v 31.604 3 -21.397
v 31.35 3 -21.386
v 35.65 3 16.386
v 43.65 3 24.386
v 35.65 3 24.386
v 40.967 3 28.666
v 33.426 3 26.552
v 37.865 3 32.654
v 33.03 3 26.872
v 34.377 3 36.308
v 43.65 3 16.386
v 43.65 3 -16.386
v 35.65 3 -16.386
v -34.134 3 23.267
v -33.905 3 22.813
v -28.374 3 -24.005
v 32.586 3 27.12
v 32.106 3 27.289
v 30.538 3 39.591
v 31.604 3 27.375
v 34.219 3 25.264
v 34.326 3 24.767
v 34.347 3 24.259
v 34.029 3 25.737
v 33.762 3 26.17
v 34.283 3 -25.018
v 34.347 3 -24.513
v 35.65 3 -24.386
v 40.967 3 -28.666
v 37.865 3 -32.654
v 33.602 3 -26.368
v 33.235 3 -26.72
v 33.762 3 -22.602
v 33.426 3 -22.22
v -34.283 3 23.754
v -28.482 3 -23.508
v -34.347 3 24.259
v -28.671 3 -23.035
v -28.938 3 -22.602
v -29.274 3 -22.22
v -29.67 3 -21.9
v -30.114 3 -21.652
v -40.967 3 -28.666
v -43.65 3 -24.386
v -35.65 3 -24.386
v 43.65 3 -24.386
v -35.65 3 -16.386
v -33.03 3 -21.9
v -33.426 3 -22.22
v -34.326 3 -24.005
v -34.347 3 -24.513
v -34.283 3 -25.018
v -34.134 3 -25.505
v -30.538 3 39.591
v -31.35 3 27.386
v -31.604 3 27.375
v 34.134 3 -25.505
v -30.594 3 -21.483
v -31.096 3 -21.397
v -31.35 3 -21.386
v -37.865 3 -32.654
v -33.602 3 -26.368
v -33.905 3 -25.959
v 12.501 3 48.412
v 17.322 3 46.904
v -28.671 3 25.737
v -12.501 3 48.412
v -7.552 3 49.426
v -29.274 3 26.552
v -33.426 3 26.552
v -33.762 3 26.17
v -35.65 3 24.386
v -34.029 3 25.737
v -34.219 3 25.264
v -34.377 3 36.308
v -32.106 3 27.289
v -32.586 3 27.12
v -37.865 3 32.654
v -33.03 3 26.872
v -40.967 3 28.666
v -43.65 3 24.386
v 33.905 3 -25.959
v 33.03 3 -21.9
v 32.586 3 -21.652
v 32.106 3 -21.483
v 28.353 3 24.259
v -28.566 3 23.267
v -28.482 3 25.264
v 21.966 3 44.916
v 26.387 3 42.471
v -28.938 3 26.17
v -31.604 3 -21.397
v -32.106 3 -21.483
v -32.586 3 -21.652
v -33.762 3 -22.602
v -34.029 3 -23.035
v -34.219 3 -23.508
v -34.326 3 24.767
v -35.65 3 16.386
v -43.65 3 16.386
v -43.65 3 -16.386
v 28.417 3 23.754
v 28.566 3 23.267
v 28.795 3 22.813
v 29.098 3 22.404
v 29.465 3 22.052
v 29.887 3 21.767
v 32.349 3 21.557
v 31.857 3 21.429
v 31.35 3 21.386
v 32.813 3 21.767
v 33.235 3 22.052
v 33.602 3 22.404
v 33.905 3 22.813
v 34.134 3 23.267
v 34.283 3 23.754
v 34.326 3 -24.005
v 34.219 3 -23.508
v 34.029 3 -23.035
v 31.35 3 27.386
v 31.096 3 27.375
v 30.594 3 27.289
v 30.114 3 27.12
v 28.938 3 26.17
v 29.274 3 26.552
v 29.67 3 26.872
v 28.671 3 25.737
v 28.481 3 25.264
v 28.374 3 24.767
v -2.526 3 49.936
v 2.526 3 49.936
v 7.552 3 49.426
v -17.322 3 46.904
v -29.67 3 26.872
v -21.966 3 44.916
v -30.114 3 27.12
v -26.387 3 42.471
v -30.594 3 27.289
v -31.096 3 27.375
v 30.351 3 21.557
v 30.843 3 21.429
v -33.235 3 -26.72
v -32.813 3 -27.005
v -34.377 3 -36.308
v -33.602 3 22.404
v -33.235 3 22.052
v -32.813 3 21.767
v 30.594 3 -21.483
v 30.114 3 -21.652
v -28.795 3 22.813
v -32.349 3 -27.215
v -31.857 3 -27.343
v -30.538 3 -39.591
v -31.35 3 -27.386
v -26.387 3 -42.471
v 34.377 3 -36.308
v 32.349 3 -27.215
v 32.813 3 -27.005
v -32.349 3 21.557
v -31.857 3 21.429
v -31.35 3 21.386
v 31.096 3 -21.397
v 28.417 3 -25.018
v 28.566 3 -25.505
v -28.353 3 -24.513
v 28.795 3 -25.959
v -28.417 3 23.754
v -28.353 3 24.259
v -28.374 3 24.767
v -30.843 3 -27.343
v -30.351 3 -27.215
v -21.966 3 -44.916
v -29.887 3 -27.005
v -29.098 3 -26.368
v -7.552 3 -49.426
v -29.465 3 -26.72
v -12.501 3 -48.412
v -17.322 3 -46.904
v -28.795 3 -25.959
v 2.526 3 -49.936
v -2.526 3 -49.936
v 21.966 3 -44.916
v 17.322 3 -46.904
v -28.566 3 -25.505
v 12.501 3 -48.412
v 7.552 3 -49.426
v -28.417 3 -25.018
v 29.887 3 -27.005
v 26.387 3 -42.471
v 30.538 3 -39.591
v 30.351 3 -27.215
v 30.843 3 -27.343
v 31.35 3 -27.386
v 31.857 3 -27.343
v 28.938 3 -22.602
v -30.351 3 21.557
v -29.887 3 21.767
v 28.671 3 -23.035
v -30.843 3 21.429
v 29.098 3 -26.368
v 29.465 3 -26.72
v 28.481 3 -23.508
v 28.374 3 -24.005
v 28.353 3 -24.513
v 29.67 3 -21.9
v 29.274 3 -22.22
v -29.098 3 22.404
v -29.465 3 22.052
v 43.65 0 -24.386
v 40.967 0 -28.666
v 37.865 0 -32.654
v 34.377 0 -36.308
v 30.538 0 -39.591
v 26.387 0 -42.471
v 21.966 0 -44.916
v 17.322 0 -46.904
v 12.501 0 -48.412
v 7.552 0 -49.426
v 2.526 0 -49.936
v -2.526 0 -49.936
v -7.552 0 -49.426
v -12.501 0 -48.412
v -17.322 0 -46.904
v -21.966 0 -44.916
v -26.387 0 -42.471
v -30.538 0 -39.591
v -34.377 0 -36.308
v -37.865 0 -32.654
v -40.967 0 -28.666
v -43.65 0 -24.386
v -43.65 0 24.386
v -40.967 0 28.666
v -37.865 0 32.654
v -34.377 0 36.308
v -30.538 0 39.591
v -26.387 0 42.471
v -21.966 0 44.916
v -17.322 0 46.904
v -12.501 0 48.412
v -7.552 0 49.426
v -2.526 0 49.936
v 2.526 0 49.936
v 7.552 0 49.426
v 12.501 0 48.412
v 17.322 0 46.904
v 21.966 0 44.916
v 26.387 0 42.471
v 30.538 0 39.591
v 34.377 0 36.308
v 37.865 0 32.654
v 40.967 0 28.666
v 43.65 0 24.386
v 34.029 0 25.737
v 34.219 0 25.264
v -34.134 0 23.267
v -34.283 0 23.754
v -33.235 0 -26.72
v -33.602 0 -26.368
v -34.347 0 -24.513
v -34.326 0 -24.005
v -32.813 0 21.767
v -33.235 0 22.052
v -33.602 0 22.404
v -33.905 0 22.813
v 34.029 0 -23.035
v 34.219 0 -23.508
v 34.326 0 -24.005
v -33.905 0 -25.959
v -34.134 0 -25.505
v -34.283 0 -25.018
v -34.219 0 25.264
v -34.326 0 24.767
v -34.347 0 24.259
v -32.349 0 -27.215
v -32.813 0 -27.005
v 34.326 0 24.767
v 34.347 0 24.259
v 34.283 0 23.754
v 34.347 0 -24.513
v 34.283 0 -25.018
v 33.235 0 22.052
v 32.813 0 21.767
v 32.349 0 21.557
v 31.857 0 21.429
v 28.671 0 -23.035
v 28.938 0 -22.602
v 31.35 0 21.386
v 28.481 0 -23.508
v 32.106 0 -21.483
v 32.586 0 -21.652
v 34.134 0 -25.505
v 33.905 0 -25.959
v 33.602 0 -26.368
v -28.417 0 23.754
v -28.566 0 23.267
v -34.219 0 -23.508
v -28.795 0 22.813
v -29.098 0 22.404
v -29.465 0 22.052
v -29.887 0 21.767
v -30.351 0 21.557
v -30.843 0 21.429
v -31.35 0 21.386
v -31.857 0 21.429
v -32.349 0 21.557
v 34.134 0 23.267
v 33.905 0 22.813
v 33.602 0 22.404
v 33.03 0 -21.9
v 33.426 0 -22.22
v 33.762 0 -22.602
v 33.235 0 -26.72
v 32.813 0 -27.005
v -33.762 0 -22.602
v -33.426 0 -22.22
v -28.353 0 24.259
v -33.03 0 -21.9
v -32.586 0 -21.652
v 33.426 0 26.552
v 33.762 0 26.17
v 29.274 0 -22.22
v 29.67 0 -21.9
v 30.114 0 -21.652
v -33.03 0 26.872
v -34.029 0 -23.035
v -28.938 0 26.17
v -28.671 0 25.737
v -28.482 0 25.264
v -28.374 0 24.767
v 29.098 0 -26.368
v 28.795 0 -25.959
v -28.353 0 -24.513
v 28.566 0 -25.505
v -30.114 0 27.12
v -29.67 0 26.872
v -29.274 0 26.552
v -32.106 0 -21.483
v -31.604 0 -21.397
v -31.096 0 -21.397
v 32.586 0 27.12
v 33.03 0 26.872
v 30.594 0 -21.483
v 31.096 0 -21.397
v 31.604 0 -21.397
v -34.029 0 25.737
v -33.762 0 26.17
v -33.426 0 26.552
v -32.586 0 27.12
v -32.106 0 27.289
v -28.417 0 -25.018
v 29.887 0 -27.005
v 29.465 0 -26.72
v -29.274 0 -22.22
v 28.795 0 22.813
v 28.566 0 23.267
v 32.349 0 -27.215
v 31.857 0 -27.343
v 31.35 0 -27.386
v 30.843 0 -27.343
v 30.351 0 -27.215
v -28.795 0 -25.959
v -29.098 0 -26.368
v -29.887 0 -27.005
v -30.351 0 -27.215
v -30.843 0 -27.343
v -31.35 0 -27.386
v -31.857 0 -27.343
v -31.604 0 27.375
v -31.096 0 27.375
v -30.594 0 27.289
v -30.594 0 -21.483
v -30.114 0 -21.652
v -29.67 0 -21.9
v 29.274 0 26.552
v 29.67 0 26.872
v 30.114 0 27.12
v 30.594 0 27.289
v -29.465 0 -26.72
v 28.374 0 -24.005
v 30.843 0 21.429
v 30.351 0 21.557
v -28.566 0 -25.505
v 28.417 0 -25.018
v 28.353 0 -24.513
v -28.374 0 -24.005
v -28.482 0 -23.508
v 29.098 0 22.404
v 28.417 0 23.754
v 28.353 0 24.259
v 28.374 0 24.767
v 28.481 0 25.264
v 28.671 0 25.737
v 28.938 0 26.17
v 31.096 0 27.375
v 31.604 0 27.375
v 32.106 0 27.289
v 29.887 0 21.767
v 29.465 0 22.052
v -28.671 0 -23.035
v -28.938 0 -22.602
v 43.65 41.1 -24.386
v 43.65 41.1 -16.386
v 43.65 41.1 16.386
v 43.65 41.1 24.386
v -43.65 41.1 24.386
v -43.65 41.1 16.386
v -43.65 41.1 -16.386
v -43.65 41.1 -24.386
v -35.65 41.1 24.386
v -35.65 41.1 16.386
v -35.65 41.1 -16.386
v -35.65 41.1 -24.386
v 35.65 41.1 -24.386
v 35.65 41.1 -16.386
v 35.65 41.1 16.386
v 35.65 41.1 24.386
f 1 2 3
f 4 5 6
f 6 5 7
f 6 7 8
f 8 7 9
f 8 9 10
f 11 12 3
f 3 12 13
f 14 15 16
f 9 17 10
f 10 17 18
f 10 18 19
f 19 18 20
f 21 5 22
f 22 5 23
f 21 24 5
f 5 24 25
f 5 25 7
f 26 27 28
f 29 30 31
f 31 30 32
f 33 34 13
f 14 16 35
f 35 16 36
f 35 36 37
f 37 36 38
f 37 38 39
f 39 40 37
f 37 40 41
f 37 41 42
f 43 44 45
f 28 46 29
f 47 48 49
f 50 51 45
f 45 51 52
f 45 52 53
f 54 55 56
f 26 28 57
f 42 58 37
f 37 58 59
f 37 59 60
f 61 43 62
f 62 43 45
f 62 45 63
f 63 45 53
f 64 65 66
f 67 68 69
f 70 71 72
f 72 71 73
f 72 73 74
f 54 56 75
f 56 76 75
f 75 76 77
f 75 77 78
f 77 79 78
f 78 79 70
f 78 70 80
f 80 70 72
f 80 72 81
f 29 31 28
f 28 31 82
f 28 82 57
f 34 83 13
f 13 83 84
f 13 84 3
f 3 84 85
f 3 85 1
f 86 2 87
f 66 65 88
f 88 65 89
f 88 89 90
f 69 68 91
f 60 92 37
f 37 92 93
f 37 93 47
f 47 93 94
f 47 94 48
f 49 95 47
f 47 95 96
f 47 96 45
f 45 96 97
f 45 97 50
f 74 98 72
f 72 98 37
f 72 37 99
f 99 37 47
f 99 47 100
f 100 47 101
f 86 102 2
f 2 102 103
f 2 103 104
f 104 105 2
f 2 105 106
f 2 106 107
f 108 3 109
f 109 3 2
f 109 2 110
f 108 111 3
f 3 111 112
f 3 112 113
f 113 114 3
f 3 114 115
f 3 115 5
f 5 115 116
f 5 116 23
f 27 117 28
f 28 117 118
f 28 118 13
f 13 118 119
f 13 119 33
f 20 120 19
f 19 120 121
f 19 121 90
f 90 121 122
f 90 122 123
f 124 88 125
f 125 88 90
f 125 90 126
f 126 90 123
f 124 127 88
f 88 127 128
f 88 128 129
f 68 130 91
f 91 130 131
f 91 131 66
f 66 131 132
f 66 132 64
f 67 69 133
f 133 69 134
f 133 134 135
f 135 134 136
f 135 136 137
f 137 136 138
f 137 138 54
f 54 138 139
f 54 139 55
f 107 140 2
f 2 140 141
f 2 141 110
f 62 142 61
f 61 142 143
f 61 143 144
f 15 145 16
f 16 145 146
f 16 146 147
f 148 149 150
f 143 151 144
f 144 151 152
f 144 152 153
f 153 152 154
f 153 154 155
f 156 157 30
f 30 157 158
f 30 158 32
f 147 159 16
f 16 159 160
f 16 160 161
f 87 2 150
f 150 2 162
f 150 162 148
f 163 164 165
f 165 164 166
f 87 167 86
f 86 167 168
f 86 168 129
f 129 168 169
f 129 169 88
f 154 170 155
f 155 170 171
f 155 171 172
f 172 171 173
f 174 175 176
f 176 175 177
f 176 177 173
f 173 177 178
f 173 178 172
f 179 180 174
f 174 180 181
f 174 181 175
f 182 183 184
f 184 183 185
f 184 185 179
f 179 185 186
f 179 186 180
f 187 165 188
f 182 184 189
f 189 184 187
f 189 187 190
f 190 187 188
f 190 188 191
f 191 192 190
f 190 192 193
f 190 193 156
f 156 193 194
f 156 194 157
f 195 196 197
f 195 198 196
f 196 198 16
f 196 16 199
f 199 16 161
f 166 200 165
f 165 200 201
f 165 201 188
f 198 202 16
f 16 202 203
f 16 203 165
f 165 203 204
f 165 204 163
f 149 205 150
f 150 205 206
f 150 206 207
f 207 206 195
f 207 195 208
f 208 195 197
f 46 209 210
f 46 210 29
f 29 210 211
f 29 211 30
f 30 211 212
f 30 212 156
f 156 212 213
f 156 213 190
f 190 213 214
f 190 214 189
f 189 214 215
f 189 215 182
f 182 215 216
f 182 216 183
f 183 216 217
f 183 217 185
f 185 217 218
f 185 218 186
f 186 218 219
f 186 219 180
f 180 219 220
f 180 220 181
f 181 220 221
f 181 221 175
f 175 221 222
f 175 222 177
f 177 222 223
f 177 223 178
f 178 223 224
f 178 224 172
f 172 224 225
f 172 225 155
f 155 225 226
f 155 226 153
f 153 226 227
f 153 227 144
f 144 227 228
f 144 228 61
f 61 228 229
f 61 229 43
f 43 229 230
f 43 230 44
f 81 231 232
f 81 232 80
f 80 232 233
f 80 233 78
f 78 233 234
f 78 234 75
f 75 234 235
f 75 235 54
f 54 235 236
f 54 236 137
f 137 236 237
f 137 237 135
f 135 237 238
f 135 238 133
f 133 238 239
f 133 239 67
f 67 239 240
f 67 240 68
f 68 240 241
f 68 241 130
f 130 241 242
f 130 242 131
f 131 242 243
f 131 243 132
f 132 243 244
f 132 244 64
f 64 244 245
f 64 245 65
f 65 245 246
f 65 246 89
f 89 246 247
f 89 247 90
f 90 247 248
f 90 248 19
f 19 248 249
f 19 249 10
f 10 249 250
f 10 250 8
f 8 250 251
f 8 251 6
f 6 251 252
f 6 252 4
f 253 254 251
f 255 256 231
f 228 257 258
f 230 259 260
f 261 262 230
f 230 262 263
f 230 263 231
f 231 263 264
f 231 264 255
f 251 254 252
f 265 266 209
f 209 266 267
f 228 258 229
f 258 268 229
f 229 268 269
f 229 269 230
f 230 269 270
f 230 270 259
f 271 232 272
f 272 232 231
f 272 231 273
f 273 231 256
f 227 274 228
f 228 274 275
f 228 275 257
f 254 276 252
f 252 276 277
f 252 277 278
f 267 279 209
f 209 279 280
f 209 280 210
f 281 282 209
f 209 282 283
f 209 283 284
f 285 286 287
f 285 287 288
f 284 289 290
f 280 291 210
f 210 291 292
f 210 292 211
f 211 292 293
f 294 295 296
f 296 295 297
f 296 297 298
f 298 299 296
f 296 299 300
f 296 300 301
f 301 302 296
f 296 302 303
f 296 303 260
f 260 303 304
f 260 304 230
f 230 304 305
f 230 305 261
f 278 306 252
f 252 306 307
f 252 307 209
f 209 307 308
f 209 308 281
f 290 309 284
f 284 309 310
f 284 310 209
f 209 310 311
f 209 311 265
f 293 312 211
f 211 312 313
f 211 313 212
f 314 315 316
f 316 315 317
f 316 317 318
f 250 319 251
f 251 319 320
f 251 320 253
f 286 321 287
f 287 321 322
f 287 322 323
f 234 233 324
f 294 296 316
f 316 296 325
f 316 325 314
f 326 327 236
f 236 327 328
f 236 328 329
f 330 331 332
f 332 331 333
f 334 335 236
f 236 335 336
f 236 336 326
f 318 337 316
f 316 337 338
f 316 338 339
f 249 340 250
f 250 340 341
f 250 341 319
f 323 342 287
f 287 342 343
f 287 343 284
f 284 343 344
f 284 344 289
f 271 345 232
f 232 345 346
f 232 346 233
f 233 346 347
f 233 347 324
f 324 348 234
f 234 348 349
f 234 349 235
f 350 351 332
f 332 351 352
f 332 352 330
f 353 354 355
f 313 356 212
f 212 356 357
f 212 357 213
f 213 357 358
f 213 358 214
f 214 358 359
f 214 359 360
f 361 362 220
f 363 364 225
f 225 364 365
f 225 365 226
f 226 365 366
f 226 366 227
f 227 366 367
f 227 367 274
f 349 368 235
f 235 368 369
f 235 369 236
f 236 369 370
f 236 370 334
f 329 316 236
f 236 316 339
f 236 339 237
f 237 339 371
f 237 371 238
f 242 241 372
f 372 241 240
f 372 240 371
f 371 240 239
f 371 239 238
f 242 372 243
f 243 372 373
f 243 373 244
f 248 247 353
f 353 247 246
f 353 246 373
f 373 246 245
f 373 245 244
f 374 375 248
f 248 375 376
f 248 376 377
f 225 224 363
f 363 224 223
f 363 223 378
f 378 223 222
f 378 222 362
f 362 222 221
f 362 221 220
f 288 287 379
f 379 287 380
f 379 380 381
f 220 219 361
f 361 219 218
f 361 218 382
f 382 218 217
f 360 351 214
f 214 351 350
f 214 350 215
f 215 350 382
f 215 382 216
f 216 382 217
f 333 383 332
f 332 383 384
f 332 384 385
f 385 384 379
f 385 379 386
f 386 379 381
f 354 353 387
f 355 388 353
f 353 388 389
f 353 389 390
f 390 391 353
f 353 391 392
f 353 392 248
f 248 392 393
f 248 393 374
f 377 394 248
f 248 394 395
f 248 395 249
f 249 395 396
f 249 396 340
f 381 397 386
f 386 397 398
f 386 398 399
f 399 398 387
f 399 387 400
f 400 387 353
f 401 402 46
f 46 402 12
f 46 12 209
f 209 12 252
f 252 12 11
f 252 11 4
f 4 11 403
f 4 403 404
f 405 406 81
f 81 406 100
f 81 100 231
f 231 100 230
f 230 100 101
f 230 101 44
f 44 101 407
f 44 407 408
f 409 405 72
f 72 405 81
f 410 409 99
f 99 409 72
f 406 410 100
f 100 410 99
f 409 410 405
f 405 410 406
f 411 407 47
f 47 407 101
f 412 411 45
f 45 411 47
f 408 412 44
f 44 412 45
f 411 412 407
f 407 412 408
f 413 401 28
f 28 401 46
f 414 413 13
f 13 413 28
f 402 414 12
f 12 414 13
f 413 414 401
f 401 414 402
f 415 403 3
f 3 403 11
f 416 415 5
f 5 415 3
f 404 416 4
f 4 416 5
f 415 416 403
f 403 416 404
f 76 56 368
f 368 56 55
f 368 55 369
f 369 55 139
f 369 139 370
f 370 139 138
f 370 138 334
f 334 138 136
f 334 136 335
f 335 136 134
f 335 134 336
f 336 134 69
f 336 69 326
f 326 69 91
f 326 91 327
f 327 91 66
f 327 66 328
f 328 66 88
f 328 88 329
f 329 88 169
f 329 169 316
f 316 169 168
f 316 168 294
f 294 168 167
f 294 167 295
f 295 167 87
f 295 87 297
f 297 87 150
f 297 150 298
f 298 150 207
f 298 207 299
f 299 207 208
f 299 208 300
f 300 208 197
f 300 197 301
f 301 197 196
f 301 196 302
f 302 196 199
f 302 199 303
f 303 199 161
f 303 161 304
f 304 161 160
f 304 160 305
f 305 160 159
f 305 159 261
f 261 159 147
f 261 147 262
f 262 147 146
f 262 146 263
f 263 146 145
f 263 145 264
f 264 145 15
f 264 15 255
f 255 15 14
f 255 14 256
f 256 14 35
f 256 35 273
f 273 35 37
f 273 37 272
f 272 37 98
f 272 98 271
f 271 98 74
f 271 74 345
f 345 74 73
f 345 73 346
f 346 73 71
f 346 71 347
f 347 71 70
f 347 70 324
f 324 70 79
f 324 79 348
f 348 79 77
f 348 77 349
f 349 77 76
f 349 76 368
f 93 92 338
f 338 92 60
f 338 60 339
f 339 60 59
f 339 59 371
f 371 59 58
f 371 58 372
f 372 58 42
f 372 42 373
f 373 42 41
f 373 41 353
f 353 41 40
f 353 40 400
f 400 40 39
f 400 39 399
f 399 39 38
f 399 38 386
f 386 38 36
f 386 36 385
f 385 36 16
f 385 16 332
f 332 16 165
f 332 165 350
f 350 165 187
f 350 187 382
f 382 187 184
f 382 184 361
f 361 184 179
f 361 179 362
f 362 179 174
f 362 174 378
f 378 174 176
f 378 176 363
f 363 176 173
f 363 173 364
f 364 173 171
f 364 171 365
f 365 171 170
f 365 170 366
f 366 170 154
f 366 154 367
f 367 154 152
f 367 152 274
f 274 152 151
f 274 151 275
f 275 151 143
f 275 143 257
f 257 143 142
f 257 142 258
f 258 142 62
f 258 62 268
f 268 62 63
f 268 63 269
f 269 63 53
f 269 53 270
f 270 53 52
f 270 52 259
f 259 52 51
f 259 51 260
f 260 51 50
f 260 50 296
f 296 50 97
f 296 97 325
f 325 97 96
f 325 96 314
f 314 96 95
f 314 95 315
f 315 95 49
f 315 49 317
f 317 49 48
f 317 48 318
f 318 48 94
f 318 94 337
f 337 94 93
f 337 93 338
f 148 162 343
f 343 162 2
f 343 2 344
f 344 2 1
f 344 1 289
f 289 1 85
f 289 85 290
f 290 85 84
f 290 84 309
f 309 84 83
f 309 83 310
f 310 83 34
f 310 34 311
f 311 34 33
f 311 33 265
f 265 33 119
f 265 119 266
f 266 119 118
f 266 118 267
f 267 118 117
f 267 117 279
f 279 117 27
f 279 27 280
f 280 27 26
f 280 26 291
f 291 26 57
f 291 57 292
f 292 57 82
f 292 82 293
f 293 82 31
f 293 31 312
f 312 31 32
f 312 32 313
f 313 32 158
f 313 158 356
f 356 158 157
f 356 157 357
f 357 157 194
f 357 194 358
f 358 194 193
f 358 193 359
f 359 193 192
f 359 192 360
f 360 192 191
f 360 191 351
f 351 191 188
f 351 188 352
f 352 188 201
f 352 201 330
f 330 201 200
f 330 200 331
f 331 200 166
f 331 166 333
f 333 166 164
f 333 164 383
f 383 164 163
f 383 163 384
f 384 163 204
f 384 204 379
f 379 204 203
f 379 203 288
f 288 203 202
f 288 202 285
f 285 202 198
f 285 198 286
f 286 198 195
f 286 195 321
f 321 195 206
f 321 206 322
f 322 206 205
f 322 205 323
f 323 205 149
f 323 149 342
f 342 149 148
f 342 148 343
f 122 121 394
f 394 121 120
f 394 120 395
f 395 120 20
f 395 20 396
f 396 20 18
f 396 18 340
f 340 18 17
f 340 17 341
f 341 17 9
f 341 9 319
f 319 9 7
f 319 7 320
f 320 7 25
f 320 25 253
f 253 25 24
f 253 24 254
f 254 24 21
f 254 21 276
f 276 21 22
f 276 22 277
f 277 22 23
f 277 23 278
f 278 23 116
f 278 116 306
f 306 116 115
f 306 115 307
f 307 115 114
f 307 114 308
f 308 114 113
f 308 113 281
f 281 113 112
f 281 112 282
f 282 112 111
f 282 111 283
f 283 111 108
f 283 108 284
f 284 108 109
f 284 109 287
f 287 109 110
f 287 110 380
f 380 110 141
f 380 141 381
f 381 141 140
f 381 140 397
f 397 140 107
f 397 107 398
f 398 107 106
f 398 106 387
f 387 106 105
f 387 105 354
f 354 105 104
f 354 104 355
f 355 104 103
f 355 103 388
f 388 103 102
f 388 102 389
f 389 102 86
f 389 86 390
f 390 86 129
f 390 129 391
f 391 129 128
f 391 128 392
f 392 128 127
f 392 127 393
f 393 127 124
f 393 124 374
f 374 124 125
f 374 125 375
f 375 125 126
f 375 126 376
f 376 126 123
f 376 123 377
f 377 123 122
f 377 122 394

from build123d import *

# Parameters (mm, degrees)
SKETCH2_R           = 50
BOSS_EXTRUDE1_DEPTH = 3
CUT_EXTRUDE1_DEPTH  = 38.1
SKETCH9_W           = 8
SKETCH9_H           = 8
BOSS_EXTRUDE2_DEPTH = 38.1
SKETCH10_R          = 3
CUT_EXTRUDE2_DEPTH  = 3


with BuildPart() as part:
    # Sketch2 → Boss-Extrude1 (new body)
    with BuildSketch(Plane(origin=(0, 0, 0), x_dir=(1, 0, 0), z_dir=(0, 1, 0))):
        with Locations(Location((0, 0, 0), (0, 0, 270))):
            Circle(SKETCH2_R)
    extrude(amount=BOSS_EXTRUDE1_DEPTH)

    # Sketch6 → Cut-Extrude1 (cut)
    with BuildSketch(Plane(origin=(0, 3, 0), x_dir=(1, 0, 0), z_dir=(0, 1, 0))):
        Polygon((-43.65, 24.386010334), (-43.65, -24.386010334), (-50, -24.386010334), (-50, 0), (-50, 24.386010334), align=None)
        Polygon((43.65, 24.386010334), (43.65, -24.386010334), (50, -24.386010334), (50, 0), (50, 24.386010334), align=None)
    extrude(amount=-CUT_EXTRUDE1_DEPTH, mode=Mode.SUBTRACT)

    # Sketch9 → Boss-Extrude2 (add)
    with BuildSketch(Plane(origin=(0, 3, 0), x_dir=(1, 0, 0), z_dir=(0, 1, 0))):
        with Locations((-39.65, 20.386010334)):
            Rectangle(SKETCH9_W, SKETCH9_H)
        with Locations((39.65, 20.386010334)):
            Rectangle(SKETCH9_W, SKETCH9_H)
        with Locations((39.65, -20.386010334)):
            Rectangle(SKETCH9_W, SKETCH9_H)
        with Locations((-39.65, -20.386010334)):
            Rectangle(SKETCH9_W, SKETCH9_H)
    extrude(amount=BOSS_EXTRUDE2_DEPTH)

    # Sketch10 → Cut-Extrude2 (cut)
    with BuildSketch(Plane(origin=(0, 0, 0), x_dir=(-1, 0, 0), z_dir=(0, -1, 0))):
        with Locations(Location((31.35, -24.386010334, 0), (0, 0, 90))):
            Circle(SKETCH10_R)
        with Locations(Location((31.35, 24.386010334, 0), (0, 0, 90))):
            Circle(SKETCH10_R)
        with Locations(Location((-31.35, 24.386010334, 0), (0, 0, 90))):
            Circle(SKETCH10_R)
        with Locations(Location((-31.35, -24.386010334, 0), (0, 0, 90))):
            Circle(SKETCH10_R)
    extrude(amount=-CUT_EXTRUDE2_DEPTH, mode=Mode.SUBTRACT)


solid = part.part
